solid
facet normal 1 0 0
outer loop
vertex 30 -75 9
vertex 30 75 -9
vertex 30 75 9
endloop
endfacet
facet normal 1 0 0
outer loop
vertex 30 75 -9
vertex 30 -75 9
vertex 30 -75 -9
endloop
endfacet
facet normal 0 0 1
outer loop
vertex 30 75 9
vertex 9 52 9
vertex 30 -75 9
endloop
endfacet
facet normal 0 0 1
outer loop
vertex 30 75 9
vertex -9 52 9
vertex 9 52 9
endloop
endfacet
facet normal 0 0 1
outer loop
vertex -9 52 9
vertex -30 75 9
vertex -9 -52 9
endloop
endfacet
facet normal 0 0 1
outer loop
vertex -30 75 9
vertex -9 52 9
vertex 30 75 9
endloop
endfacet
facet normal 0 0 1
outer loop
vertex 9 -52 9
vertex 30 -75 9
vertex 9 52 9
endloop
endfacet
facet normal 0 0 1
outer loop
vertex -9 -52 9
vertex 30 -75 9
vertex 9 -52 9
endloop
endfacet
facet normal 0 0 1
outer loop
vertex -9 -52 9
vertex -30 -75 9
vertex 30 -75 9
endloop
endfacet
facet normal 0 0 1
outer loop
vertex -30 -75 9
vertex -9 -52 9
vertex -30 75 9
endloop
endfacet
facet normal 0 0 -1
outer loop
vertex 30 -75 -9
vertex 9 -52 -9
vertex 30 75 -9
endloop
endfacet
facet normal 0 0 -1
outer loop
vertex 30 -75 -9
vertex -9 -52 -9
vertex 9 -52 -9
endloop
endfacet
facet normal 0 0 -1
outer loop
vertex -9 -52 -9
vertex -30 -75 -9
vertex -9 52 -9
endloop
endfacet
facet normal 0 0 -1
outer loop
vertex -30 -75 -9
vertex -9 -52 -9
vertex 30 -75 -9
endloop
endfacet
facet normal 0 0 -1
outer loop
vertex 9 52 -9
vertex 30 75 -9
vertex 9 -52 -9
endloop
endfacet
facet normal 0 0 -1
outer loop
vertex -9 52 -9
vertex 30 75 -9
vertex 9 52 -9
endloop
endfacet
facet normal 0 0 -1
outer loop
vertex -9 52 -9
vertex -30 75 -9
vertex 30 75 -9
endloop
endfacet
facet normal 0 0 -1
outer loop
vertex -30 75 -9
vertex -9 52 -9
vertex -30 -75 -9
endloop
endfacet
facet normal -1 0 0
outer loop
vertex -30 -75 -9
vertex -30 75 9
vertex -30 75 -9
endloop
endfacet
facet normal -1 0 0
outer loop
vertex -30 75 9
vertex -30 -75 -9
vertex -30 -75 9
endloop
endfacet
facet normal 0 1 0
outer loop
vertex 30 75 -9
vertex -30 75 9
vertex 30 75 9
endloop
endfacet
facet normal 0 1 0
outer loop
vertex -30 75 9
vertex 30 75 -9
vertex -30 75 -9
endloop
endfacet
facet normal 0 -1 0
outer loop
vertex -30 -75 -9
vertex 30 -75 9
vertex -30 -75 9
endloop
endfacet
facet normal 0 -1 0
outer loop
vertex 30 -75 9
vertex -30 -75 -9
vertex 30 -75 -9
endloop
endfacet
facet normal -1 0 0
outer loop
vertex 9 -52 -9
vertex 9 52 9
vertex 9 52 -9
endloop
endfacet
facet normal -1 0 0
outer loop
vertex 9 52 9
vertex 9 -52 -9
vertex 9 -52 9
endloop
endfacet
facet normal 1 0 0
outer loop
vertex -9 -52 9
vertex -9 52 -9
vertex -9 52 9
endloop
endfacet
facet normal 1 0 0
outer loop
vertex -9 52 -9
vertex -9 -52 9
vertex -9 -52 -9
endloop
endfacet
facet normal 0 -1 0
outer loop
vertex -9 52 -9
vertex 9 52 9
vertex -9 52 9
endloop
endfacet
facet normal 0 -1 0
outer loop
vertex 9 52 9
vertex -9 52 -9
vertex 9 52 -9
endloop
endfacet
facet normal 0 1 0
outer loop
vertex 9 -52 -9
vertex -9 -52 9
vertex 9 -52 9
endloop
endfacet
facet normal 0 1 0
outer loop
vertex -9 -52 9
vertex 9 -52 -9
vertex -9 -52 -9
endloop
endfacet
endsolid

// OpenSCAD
/*
   George Jenson Bottle Opener
   Milling template  
   
   By Anton Augustsson 
*/

$fn=90;  // accuracy


// ---------- Variables ----------

openerLength   = 104;
openerDiameter = 18;
// routerBitDepth = 2;

templateLength = 150;
templateWidth  = 60;
templateHeight = 18;



// ---------- Code ----------

difference() {        
cube(size = [
    templateWidth,
    templateLength,
    templateHeight],
    center = true);

cube(size = [
    openerDiameter,
    openerLength,
    templateHeight+0.2],
    center = true);


}
